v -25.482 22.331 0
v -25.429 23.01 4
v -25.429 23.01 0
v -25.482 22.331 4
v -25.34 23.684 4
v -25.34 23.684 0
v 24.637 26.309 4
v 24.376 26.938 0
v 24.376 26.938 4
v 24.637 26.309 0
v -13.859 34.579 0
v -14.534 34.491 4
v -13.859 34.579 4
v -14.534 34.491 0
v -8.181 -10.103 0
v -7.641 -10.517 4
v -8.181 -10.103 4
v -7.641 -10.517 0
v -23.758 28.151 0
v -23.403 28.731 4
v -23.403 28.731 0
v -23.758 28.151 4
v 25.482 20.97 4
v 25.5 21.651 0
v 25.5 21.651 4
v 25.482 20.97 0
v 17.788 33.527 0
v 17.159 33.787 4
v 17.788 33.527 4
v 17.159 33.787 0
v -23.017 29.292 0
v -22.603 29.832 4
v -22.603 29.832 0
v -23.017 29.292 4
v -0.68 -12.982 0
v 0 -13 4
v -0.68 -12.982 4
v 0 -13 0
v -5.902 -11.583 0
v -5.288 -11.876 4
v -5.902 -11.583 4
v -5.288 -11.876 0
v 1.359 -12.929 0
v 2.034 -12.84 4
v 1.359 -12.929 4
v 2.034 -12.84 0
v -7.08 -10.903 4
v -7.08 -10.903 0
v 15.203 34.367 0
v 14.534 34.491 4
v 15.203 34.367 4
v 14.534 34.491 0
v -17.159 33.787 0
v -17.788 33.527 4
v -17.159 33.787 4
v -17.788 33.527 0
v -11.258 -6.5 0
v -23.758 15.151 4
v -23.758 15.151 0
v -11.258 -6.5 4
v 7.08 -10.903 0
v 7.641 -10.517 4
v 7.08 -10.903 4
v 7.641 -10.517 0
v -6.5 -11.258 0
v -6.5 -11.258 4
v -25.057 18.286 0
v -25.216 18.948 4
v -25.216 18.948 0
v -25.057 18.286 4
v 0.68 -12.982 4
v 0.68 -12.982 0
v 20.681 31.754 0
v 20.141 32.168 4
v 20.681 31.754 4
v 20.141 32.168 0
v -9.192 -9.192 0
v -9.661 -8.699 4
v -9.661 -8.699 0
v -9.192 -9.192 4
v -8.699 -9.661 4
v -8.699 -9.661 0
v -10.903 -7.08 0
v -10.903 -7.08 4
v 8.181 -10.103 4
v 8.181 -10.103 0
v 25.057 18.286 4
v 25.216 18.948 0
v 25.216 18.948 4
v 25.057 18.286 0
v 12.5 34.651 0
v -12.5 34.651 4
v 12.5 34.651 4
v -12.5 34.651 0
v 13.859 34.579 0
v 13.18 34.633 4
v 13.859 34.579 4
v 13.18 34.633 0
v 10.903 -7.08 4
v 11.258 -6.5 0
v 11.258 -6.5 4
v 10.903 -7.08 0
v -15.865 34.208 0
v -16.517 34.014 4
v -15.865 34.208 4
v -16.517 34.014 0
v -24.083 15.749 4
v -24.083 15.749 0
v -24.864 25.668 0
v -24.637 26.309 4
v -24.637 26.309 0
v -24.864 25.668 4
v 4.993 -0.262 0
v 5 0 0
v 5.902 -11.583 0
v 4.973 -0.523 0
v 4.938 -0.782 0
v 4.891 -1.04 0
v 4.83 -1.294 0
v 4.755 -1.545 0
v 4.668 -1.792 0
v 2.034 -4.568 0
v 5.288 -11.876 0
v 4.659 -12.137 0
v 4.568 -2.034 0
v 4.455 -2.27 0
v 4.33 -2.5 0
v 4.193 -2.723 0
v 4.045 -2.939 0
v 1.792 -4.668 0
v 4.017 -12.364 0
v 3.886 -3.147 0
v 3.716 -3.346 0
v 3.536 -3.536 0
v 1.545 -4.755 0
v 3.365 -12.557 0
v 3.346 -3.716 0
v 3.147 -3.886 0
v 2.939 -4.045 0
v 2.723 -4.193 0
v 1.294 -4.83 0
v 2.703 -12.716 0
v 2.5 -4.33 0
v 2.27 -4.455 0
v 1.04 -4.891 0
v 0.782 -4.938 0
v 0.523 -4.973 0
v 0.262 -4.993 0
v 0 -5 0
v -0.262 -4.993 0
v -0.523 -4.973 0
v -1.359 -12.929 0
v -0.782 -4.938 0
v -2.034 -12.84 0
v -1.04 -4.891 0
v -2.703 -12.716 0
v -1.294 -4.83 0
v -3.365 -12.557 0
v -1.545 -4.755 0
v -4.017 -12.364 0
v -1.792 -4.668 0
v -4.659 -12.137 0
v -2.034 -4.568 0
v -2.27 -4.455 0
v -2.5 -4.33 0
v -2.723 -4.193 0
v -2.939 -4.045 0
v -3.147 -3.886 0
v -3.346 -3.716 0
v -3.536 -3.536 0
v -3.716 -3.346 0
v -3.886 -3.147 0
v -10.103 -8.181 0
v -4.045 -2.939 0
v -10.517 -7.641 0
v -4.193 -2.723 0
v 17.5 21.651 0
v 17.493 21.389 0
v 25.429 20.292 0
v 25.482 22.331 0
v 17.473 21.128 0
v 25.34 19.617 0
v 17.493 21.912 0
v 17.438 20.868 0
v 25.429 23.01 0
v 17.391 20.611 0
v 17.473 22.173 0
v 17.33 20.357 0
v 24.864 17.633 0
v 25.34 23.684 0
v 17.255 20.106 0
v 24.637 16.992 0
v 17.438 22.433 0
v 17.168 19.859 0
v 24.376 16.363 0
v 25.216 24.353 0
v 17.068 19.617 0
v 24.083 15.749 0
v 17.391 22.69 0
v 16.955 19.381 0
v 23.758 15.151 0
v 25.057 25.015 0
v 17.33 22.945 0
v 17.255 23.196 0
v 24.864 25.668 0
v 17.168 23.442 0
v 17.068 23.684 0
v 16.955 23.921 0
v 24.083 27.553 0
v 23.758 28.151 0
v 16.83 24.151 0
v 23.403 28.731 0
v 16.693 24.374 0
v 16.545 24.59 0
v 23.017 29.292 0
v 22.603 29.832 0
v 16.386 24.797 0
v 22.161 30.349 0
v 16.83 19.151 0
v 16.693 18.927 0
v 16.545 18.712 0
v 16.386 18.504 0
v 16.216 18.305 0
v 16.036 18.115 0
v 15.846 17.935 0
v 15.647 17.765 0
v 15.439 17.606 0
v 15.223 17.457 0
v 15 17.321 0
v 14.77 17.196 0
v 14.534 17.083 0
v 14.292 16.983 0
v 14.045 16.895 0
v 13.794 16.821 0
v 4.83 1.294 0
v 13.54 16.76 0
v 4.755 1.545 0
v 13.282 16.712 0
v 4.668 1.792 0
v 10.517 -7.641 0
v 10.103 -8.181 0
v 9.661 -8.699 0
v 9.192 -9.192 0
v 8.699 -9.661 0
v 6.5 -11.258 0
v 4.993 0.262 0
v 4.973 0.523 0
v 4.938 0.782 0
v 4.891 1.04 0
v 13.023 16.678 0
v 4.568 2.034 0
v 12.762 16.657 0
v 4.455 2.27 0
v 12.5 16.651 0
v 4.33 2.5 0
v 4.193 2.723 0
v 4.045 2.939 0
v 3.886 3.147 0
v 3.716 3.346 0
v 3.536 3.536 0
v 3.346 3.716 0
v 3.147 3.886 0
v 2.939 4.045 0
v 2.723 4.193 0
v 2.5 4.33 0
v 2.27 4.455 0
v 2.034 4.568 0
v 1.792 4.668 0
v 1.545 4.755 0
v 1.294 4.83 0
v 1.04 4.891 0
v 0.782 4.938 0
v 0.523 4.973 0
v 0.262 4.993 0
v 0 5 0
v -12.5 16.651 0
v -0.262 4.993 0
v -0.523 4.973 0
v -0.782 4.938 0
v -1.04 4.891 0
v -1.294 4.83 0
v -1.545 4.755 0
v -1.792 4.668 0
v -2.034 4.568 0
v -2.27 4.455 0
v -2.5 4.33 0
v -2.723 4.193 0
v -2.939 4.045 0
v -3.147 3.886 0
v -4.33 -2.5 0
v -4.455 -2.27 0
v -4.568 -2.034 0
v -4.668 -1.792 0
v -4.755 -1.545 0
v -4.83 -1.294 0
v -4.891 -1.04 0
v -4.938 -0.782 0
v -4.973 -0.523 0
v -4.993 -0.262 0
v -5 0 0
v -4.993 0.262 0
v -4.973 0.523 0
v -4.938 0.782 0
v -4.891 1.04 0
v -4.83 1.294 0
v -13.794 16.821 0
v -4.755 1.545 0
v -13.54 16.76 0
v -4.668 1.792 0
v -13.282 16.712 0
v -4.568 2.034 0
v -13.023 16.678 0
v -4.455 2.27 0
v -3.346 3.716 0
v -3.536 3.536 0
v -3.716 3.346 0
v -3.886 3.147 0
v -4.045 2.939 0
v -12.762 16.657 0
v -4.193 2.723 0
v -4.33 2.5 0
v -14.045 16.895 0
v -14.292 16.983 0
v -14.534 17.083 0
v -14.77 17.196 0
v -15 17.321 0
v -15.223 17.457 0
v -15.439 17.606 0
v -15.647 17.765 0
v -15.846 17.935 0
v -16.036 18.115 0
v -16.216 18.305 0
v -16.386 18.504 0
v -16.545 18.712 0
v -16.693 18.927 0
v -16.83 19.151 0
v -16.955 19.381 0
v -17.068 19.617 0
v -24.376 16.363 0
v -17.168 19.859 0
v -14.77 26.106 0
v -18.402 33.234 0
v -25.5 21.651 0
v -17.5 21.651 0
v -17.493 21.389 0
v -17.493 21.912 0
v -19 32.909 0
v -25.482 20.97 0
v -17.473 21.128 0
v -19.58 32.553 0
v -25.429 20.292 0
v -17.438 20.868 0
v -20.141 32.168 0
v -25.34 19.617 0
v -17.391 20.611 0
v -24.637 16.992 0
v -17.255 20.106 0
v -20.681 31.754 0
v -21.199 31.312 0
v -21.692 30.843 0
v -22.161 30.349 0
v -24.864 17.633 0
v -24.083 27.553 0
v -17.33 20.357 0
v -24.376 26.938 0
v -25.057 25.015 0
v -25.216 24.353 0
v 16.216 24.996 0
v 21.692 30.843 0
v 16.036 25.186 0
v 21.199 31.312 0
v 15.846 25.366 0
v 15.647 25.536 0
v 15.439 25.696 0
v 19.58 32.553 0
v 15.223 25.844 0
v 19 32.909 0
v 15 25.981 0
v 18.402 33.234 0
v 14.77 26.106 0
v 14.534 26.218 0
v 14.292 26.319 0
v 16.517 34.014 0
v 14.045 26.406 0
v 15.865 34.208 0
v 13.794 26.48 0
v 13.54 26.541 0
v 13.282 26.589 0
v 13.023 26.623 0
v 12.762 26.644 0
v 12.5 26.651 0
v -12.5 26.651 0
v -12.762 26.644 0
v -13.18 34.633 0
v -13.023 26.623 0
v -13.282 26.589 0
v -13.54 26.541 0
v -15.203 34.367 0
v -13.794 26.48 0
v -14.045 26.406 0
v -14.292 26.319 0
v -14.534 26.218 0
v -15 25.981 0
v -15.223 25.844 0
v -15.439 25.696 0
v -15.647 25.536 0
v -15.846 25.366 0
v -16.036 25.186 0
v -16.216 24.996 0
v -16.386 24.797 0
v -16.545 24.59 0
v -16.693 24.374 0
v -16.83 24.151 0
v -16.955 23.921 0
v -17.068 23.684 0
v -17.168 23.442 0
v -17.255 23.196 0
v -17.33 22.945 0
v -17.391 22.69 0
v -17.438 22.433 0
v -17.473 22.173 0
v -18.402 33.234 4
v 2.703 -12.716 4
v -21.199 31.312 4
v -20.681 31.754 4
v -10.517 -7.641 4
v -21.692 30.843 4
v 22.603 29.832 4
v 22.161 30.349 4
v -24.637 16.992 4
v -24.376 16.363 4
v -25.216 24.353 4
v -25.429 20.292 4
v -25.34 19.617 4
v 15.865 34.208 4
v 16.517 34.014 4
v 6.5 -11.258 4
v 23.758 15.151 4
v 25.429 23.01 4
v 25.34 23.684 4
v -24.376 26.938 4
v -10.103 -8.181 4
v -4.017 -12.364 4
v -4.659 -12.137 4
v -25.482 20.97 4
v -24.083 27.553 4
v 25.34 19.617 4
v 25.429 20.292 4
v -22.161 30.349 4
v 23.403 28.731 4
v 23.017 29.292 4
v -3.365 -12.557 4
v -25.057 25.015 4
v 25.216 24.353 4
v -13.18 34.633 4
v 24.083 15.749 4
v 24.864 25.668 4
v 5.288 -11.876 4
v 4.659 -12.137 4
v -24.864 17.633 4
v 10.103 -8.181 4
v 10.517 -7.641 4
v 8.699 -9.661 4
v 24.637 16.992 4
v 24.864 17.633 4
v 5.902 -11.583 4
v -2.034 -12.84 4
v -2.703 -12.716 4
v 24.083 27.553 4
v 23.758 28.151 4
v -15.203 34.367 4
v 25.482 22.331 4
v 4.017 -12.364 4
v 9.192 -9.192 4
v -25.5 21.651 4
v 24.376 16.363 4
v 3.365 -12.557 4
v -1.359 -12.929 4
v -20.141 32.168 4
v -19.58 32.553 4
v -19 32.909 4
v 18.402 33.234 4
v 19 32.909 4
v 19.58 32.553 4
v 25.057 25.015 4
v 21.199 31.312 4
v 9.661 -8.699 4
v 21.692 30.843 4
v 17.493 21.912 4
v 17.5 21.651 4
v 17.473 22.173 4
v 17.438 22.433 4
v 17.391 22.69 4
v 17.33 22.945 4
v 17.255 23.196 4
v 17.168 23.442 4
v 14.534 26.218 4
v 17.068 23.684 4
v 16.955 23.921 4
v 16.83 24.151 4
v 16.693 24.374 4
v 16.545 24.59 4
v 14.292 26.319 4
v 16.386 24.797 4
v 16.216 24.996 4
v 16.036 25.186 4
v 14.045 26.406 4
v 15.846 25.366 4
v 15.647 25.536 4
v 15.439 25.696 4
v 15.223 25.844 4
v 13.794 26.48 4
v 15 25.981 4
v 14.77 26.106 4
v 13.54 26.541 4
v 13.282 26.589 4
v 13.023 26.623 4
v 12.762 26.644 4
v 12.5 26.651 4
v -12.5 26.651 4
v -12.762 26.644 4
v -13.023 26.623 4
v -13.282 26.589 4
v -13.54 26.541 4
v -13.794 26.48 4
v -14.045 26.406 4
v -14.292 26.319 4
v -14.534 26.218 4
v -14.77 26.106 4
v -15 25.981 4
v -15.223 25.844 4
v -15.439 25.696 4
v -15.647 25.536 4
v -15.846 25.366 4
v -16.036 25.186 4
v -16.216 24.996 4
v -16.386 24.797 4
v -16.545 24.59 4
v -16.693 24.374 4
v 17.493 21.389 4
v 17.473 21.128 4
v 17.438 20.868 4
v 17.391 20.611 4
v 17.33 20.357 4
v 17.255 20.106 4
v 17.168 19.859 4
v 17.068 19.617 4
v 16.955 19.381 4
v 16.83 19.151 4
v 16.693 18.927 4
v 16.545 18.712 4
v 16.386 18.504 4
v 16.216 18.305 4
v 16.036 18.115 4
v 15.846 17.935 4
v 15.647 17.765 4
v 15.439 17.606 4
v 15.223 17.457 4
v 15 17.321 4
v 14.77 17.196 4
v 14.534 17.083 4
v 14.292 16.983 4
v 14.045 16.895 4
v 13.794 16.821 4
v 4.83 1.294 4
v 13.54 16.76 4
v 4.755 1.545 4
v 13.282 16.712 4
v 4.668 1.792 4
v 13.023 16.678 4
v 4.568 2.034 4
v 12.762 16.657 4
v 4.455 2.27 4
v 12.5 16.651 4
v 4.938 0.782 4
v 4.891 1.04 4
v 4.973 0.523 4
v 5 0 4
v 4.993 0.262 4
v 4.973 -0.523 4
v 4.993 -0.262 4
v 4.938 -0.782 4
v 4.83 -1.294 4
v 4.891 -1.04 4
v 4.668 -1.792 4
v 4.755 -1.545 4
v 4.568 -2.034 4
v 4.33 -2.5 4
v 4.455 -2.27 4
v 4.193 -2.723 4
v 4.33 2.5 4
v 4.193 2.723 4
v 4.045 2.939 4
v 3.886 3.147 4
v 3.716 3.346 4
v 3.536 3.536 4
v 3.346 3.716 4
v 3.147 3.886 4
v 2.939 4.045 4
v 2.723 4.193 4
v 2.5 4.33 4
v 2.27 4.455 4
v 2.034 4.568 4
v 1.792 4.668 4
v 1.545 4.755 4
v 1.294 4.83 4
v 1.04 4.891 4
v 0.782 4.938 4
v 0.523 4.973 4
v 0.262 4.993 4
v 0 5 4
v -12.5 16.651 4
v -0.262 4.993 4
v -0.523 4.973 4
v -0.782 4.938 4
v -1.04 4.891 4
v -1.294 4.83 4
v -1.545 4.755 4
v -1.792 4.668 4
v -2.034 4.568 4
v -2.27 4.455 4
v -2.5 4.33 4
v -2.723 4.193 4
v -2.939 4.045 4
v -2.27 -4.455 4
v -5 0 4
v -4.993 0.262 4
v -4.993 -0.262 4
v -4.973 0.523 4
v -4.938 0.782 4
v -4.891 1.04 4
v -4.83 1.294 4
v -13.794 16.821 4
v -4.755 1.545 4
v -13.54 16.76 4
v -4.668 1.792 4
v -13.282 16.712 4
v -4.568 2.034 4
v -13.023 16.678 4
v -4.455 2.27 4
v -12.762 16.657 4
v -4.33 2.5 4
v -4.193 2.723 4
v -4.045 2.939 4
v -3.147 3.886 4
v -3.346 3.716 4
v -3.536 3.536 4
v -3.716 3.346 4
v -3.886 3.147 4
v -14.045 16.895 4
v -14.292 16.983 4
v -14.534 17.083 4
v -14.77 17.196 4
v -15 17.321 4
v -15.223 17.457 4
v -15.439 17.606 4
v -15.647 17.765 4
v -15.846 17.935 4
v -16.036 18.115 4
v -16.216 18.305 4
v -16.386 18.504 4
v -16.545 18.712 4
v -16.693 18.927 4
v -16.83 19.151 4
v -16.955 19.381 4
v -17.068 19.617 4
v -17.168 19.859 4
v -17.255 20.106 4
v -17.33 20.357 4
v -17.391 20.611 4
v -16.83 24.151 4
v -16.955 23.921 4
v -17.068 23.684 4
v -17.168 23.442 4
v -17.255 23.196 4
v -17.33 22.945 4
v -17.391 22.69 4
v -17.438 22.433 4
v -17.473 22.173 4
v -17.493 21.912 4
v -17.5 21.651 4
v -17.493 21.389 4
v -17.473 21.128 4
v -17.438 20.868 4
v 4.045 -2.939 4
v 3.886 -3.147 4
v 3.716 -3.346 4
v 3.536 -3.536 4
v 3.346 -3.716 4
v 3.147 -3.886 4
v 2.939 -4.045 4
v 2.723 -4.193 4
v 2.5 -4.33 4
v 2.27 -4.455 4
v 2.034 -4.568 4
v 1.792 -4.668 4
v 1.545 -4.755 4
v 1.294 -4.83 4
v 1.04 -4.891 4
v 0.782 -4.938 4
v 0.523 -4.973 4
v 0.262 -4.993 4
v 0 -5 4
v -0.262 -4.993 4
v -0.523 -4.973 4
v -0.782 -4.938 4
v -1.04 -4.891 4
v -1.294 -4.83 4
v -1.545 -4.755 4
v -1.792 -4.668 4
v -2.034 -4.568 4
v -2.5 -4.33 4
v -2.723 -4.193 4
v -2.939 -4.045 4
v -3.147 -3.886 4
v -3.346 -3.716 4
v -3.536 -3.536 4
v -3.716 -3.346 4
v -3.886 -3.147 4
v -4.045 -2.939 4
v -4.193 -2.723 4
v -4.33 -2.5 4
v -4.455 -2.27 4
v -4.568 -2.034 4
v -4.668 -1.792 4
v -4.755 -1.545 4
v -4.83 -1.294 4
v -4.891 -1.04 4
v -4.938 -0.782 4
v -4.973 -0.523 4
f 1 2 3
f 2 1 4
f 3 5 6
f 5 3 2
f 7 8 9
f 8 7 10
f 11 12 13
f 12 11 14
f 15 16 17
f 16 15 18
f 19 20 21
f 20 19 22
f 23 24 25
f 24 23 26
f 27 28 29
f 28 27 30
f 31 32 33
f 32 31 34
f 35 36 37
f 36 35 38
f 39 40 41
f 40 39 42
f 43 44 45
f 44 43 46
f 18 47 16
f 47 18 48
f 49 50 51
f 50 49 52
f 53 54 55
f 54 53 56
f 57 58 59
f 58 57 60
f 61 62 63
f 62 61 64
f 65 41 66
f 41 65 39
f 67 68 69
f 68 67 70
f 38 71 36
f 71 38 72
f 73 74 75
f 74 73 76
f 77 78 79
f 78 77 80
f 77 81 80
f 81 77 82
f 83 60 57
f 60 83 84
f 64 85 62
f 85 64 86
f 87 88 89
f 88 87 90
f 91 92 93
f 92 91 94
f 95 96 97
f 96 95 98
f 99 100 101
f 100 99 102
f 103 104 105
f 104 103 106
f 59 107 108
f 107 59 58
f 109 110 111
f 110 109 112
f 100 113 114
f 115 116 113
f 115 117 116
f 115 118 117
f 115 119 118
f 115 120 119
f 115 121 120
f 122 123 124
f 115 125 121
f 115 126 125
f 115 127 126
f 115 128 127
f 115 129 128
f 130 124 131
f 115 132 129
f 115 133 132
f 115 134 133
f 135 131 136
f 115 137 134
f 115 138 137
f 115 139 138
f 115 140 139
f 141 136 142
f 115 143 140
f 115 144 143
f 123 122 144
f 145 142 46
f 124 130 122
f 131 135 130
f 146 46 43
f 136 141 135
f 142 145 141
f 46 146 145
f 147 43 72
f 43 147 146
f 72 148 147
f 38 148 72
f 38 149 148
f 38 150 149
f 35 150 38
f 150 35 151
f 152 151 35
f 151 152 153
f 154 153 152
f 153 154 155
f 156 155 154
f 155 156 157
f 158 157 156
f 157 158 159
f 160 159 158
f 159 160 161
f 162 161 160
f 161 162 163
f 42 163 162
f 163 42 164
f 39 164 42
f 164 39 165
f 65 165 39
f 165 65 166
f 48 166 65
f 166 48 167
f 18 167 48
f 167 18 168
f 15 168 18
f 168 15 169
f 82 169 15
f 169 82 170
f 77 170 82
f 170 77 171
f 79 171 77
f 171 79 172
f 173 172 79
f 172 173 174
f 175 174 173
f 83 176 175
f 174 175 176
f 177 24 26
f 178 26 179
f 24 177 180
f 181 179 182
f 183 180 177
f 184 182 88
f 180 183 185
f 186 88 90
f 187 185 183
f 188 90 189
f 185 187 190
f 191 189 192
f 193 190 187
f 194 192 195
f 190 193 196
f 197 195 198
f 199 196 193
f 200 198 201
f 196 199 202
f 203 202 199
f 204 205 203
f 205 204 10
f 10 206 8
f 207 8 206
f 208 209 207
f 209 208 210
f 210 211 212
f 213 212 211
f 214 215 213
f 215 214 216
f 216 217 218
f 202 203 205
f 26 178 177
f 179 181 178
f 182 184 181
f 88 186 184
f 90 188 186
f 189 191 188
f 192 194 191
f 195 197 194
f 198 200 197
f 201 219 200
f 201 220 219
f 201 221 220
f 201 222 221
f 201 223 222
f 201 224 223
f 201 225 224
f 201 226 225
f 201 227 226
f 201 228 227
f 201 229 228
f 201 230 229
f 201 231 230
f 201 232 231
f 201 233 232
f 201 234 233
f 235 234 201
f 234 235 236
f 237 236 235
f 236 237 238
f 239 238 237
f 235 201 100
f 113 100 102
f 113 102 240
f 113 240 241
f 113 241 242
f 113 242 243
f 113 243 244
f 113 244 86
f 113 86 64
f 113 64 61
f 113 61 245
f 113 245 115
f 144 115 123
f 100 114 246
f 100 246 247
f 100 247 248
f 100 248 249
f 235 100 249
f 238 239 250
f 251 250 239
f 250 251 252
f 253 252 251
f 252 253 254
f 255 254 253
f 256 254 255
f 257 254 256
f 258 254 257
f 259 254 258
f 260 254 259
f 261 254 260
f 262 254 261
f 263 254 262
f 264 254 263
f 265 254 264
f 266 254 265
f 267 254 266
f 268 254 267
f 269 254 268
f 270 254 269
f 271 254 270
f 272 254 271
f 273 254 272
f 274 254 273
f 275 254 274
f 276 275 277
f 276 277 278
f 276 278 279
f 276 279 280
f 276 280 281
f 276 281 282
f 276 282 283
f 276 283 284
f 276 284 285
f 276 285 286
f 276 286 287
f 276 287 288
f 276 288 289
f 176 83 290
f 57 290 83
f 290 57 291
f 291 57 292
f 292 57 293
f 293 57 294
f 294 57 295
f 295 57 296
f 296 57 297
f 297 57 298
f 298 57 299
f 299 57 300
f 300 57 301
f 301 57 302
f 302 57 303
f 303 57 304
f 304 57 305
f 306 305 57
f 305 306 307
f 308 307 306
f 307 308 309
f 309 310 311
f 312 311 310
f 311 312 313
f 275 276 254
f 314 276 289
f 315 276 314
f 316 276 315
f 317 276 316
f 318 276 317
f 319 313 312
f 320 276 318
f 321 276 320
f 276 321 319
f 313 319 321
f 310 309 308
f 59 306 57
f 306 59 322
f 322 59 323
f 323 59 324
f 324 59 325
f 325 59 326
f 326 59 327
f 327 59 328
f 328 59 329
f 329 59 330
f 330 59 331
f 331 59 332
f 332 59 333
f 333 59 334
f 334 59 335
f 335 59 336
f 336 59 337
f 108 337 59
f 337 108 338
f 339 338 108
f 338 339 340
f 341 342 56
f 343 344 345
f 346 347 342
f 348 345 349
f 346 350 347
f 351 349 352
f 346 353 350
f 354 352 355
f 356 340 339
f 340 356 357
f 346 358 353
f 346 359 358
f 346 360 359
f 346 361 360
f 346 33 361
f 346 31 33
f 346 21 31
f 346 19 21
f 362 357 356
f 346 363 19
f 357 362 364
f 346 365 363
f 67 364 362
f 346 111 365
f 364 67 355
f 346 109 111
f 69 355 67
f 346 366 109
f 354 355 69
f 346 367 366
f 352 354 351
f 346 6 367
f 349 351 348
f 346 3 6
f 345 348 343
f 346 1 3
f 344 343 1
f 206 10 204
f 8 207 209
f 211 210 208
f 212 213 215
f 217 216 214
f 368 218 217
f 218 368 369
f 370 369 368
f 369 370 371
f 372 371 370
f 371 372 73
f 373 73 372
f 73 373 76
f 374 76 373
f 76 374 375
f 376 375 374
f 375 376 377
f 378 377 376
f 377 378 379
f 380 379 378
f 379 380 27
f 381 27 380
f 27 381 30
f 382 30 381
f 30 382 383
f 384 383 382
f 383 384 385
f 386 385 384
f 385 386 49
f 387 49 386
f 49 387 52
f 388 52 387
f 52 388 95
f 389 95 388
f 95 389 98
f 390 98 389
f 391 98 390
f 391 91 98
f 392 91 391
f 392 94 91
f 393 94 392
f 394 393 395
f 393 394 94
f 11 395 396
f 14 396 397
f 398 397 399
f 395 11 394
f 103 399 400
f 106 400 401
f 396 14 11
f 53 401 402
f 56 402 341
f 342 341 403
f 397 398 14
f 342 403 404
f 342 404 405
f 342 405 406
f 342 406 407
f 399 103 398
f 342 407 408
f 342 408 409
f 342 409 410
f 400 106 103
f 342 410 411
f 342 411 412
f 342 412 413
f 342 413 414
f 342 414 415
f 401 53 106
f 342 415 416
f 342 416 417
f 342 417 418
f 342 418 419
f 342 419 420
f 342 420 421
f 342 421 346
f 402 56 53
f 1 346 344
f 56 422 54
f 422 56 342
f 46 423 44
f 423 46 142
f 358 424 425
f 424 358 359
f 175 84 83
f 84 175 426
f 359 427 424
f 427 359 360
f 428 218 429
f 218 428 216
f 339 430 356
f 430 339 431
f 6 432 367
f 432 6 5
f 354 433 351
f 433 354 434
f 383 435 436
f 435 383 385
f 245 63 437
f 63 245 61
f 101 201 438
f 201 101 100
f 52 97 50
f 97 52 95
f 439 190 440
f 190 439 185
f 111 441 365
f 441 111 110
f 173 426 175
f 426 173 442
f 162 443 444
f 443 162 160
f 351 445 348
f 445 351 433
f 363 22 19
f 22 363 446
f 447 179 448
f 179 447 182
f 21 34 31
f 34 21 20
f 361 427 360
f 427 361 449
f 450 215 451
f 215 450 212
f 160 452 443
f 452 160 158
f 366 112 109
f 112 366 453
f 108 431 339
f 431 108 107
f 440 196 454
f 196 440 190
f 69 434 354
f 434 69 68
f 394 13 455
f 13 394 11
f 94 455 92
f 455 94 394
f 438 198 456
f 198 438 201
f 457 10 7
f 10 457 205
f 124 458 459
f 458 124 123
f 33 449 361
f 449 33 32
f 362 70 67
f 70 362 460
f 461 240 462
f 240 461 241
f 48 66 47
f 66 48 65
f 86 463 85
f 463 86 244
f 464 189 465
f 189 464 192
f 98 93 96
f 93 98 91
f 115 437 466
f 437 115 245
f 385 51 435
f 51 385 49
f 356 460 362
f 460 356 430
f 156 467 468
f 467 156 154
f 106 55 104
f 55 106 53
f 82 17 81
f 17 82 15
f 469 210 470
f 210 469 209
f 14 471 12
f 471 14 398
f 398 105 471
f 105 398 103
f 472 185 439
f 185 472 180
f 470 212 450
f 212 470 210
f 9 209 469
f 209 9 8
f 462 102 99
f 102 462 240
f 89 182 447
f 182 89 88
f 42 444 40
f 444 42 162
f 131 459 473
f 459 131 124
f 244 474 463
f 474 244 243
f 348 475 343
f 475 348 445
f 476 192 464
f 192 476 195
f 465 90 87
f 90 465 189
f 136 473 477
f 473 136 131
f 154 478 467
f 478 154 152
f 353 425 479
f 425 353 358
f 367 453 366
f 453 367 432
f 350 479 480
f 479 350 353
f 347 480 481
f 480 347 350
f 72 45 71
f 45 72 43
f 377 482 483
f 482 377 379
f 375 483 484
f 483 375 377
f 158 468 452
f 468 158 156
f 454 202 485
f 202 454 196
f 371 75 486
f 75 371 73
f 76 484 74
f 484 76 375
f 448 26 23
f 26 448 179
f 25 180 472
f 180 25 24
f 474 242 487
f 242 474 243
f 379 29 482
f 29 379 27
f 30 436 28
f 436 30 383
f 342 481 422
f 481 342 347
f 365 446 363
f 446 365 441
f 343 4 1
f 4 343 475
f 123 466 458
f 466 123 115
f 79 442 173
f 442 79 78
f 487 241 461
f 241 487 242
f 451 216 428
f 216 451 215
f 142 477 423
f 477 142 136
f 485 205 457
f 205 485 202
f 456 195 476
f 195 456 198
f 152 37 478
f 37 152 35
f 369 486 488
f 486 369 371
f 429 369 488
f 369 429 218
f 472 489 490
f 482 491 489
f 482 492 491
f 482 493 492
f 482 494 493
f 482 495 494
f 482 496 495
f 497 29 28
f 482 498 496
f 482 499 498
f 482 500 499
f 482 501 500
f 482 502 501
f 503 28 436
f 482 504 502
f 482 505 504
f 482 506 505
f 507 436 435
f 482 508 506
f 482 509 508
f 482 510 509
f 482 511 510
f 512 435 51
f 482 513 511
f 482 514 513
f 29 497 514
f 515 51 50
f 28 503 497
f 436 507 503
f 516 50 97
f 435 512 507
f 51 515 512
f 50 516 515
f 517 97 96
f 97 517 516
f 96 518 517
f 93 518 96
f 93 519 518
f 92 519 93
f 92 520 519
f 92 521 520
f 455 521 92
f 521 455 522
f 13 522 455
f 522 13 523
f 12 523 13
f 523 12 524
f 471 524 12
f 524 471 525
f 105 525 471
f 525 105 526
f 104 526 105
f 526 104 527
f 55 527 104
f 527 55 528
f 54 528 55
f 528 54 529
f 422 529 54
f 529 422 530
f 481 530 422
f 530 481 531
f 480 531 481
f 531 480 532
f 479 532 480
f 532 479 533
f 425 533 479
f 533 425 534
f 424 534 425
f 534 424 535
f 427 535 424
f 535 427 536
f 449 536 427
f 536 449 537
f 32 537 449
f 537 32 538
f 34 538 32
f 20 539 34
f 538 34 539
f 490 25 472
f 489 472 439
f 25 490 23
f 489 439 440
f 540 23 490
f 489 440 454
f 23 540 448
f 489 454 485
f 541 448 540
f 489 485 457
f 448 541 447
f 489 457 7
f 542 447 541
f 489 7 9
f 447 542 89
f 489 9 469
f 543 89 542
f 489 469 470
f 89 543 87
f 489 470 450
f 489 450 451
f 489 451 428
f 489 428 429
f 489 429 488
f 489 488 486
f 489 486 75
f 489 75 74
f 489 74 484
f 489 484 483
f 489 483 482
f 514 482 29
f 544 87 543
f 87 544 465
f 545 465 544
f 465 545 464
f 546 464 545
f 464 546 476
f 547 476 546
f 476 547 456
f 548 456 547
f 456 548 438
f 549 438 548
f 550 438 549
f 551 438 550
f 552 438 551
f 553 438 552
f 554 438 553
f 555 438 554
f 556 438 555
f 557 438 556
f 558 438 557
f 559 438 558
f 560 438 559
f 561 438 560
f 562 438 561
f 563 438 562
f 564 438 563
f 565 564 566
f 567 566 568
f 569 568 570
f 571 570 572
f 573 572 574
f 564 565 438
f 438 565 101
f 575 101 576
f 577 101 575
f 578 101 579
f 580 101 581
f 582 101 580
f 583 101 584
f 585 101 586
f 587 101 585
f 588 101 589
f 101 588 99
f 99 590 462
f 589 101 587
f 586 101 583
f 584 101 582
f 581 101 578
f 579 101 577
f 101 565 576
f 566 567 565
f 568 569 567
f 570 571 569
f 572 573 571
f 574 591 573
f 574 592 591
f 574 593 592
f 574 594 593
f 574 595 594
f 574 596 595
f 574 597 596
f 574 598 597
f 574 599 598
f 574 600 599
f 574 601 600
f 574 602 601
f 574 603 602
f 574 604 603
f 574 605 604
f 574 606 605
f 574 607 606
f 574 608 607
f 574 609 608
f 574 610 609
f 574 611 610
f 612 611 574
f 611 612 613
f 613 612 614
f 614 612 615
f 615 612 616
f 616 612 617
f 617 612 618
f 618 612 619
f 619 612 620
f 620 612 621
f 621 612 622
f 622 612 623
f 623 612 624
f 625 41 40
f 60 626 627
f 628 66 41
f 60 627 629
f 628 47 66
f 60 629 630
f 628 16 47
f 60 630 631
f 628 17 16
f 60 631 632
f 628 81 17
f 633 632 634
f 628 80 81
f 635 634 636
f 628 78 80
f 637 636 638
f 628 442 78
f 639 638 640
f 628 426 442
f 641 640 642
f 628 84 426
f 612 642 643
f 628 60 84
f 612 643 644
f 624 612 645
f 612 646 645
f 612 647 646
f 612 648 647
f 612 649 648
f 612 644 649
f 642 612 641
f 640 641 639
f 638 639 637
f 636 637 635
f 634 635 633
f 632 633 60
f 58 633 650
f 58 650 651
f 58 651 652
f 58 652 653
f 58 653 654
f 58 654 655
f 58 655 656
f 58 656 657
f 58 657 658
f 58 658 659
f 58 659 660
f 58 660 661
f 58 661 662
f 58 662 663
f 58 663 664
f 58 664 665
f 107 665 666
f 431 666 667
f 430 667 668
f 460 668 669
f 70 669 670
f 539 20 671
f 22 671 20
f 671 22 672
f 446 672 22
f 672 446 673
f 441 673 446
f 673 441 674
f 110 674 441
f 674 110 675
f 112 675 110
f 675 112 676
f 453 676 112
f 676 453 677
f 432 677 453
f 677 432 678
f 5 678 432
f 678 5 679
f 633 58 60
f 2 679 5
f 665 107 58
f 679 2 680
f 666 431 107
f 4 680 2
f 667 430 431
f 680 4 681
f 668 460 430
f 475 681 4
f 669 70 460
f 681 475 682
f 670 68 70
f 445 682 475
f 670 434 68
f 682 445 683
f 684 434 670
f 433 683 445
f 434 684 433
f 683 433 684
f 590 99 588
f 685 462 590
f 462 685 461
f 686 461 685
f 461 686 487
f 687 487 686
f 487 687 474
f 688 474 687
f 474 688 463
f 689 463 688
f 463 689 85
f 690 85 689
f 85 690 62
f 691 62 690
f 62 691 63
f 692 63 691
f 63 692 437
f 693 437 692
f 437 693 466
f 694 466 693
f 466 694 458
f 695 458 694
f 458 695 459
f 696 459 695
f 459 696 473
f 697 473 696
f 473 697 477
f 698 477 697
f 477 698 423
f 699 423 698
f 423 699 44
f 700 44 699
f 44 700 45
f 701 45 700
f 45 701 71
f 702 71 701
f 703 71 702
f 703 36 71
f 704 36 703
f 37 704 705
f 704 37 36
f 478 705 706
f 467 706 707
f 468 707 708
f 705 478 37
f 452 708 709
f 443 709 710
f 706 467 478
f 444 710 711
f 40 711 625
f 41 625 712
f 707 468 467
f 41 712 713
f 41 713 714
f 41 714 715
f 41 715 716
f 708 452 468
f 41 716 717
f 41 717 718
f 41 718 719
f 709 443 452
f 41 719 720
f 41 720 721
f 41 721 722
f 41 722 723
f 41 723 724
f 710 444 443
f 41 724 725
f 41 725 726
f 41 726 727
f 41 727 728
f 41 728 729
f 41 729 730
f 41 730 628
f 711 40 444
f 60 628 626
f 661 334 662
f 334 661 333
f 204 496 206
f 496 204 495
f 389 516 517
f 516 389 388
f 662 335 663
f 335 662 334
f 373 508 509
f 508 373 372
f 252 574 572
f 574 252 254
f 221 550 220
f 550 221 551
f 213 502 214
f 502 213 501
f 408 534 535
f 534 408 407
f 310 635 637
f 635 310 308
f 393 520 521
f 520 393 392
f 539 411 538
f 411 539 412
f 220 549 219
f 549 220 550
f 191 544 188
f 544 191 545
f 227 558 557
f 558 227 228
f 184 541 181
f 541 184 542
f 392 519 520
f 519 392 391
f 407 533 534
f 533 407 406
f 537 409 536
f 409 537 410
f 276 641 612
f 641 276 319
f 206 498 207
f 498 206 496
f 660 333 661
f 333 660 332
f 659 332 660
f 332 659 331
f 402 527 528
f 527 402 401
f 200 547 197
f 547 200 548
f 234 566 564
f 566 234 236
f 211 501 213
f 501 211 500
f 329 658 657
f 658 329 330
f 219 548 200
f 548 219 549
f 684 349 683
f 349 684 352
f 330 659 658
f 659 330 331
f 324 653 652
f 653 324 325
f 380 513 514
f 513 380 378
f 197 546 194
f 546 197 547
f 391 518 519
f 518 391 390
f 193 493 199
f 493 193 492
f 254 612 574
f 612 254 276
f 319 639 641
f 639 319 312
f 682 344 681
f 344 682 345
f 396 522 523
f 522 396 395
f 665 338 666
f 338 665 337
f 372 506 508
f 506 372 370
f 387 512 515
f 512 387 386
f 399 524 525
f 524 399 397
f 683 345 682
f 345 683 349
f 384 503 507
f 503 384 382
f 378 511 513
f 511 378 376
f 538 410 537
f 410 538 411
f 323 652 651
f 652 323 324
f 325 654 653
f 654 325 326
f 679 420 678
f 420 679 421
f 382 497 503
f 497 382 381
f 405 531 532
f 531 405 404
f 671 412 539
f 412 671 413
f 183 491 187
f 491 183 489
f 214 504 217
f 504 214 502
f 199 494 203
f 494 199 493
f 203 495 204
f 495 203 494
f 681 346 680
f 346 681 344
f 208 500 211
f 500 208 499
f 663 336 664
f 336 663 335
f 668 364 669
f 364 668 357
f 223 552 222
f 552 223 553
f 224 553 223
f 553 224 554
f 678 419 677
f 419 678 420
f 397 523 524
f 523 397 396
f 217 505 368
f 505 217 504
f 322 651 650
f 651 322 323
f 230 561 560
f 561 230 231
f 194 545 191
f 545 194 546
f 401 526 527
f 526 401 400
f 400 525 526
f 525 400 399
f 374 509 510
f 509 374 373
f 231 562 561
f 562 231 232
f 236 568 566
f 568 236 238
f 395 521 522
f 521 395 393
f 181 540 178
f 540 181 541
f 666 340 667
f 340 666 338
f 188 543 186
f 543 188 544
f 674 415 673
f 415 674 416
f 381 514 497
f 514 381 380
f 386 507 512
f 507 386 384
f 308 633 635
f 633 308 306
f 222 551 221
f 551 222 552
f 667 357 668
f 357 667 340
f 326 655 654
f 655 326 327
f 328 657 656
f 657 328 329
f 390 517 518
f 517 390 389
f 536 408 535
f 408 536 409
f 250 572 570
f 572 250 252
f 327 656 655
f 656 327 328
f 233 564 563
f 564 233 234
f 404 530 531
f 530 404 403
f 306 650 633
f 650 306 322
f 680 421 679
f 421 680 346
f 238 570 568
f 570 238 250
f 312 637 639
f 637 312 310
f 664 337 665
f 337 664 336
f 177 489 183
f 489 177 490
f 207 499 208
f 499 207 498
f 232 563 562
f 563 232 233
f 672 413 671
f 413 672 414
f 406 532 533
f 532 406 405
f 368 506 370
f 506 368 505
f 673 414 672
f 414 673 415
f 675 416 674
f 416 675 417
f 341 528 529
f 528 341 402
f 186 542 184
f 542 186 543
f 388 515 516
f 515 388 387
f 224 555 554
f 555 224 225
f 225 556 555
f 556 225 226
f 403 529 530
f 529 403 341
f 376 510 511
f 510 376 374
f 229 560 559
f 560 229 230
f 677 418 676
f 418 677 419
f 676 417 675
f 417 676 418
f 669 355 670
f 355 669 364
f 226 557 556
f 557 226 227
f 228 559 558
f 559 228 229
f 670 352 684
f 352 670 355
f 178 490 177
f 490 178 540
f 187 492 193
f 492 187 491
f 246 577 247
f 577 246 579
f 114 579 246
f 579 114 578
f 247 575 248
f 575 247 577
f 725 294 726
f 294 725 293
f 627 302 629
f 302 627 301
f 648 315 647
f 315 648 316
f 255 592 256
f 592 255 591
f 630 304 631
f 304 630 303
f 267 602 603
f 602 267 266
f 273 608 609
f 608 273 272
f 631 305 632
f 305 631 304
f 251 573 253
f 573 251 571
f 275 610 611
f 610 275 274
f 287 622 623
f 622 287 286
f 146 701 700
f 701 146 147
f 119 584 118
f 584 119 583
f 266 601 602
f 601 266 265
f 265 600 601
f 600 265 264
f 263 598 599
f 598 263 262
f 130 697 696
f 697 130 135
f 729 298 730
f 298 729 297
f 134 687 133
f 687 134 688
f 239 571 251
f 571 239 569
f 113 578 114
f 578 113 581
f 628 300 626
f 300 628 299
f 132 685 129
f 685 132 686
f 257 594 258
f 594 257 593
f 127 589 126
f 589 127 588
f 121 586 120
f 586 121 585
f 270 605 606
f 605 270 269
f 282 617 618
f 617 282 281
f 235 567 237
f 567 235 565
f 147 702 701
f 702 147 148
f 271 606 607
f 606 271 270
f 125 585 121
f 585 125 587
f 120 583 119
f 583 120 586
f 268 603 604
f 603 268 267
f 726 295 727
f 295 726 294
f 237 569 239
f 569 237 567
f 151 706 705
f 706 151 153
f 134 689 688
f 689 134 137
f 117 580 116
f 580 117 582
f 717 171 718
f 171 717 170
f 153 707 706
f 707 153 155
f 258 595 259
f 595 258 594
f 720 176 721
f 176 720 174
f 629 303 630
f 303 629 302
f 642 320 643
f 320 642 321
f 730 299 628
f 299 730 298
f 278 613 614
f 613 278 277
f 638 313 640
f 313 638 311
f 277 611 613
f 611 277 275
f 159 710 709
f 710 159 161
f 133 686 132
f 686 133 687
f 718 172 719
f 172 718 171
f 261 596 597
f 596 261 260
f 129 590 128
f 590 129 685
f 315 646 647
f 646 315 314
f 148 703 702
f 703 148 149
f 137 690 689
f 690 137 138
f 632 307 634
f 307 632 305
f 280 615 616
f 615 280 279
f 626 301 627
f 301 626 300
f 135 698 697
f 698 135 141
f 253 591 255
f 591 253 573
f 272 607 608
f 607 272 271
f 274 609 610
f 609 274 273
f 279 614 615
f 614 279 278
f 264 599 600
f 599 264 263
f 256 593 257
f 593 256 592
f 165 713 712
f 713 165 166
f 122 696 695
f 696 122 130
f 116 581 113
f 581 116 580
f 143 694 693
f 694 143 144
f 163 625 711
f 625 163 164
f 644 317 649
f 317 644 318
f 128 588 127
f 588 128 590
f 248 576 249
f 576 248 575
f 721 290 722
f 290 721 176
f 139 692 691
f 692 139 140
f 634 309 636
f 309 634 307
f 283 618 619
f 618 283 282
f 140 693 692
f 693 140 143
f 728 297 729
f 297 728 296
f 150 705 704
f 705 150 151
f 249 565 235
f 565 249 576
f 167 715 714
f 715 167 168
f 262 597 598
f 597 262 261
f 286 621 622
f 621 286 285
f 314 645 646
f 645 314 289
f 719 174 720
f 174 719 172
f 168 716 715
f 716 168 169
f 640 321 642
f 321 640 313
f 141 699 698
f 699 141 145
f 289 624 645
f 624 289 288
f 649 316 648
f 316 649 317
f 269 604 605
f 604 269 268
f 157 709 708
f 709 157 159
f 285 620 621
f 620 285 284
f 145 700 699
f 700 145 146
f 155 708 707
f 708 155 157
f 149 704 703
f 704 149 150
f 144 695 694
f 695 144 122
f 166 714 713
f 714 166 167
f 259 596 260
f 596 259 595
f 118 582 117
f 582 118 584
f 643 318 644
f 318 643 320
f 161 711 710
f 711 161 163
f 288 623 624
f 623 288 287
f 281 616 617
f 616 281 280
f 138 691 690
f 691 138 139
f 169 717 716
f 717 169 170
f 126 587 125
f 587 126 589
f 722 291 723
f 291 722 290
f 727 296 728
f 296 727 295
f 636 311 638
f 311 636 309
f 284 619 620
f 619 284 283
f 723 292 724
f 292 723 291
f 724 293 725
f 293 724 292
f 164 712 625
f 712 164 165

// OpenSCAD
$fn=120;

difference() {
    hull() {
        cylinder(4, 13, 13);
        translate([12.5, 12.5 * sqrt(3), 0])
            cylinder(4, 13, 13);
        translate([-12.5, 12.5 * sqrt(3), 0])
            cylinder(4, 13, 13);
    }
    hull() {
        translate([12.5, 12.5 * sqrt(3), 0])
            cylinder(4, 5, 5);
        translate([-12.5, 12.5 * sqrt(3), 0])
            cylinder(4, 5, 5);
    }
    cylinder(4, 5, 5);
}
